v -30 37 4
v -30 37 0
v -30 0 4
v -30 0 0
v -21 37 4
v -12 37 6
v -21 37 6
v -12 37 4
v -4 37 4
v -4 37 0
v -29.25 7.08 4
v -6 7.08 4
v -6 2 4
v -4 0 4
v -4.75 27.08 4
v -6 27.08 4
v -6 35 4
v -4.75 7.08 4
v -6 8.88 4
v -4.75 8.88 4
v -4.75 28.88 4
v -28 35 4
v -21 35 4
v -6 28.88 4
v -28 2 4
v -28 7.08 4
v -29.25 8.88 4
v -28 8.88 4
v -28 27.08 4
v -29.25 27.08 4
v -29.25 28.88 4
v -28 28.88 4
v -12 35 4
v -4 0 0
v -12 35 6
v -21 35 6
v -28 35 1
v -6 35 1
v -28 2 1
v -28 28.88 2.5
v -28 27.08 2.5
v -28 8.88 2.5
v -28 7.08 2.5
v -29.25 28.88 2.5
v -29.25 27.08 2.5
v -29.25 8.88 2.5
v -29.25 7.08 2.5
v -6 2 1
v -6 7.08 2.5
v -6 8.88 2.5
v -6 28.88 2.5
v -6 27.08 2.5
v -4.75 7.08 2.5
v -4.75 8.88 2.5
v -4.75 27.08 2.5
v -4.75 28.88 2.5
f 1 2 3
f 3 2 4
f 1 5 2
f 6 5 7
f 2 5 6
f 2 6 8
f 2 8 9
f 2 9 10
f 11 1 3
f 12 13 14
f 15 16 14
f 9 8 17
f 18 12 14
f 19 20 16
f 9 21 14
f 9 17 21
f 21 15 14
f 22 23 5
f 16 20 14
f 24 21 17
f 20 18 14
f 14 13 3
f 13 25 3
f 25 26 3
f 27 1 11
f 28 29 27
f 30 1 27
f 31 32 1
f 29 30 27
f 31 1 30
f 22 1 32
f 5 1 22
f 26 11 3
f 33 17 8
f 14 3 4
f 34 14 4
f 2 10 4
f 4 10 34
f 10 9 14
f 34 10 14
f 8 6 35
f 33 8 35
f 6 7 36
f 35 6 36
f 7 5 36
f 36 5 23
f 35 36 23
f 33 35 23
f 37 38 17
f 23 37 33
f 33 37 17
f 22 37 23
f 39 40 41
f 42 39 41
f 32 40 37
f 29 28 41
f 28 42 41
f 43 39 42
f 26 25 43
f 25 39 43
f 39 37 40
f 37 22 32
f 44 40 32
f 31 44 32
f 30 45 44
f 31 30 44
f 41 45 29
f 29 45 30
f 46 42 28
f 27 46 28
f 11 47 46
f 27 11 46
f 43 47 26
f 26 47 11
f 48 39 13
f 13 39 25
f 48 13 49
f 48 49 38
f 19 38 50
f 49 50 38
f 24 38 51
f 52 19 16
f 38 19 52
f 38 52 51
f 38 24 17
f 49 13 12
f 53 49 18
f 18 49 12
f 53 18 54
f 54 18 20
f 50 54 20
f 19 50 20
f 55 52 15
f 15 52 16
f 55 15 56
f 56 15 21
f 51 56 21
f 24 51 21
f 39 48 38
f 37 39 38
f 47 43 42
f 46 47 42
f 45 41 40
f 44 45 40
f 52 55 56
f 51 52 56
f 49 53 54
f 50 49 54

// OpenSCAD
peg_radius = 0.8;
peg_height = 1.5;
peg_faces = 50;

module create_peg (x, y, h) {
	translate([x, y, h]) cube([2, 1.80, peg_height]);

// cylindar(h = peg_height, r = peg_radius, $fn= peg_faces);
}

module create_peg2(x, y, h) {
	translate([x, y, h]) cube([1.25, 2.25, peg_height]);
}

module top() {

	height = 21.5;
	peg_depth = height;

	translate([2, 0, -23]) cube([2, 2.5, 19.5]);
	translate([22, 3, -23]) cube([2, 2, 19.5]);

	translate([0, 0, -25]) {
		 difference() {
			// Base cube with cutout
			cube([26, 37, height]);
			translate([2, 2, 2]) cube([22, 33, height]);

			// MIDI Cutout
			translate([2, 0, 2]) cube([22, 2, height]);

			// Pin Curout
			translate([9, 34, 14.5]) cube([9, 3, 7]);
		}

		// Cylindrical pegs
		create_peg2(0.75, 6.82, peg_depth);
		create_peg2(0.75, 26.82, peg_depth);
		create_peg2(23.75, 6.82, peg_depth);
		create_peg2(23.75, 26.82, peg_depth);
	}	
}

module bottom() {
	
	height = 4;
	peg_depth = 0;

	translate([9, 0, -2]) cube([9, 2, 2]);
	
	difference() {
		// Base cube with cutout
		cube([26, 37, height]);
		translate([2, 2, -1]) cube([22, 33, height]);

		// Cylindrical peg holes
		create_peg(0.75, 8.12, peg_depth);
		create_peg(0.75, 28.12, peg_depth);
		create_peg(23.25, 8.12, peg_depth);
		create_peg(23.25, 28.12, peg_depth);
	}

	
}


//translate([0, 0, 25]) top();
rotate ([180, 0, 0]) translate([-30, -37, -4]) bottom();
